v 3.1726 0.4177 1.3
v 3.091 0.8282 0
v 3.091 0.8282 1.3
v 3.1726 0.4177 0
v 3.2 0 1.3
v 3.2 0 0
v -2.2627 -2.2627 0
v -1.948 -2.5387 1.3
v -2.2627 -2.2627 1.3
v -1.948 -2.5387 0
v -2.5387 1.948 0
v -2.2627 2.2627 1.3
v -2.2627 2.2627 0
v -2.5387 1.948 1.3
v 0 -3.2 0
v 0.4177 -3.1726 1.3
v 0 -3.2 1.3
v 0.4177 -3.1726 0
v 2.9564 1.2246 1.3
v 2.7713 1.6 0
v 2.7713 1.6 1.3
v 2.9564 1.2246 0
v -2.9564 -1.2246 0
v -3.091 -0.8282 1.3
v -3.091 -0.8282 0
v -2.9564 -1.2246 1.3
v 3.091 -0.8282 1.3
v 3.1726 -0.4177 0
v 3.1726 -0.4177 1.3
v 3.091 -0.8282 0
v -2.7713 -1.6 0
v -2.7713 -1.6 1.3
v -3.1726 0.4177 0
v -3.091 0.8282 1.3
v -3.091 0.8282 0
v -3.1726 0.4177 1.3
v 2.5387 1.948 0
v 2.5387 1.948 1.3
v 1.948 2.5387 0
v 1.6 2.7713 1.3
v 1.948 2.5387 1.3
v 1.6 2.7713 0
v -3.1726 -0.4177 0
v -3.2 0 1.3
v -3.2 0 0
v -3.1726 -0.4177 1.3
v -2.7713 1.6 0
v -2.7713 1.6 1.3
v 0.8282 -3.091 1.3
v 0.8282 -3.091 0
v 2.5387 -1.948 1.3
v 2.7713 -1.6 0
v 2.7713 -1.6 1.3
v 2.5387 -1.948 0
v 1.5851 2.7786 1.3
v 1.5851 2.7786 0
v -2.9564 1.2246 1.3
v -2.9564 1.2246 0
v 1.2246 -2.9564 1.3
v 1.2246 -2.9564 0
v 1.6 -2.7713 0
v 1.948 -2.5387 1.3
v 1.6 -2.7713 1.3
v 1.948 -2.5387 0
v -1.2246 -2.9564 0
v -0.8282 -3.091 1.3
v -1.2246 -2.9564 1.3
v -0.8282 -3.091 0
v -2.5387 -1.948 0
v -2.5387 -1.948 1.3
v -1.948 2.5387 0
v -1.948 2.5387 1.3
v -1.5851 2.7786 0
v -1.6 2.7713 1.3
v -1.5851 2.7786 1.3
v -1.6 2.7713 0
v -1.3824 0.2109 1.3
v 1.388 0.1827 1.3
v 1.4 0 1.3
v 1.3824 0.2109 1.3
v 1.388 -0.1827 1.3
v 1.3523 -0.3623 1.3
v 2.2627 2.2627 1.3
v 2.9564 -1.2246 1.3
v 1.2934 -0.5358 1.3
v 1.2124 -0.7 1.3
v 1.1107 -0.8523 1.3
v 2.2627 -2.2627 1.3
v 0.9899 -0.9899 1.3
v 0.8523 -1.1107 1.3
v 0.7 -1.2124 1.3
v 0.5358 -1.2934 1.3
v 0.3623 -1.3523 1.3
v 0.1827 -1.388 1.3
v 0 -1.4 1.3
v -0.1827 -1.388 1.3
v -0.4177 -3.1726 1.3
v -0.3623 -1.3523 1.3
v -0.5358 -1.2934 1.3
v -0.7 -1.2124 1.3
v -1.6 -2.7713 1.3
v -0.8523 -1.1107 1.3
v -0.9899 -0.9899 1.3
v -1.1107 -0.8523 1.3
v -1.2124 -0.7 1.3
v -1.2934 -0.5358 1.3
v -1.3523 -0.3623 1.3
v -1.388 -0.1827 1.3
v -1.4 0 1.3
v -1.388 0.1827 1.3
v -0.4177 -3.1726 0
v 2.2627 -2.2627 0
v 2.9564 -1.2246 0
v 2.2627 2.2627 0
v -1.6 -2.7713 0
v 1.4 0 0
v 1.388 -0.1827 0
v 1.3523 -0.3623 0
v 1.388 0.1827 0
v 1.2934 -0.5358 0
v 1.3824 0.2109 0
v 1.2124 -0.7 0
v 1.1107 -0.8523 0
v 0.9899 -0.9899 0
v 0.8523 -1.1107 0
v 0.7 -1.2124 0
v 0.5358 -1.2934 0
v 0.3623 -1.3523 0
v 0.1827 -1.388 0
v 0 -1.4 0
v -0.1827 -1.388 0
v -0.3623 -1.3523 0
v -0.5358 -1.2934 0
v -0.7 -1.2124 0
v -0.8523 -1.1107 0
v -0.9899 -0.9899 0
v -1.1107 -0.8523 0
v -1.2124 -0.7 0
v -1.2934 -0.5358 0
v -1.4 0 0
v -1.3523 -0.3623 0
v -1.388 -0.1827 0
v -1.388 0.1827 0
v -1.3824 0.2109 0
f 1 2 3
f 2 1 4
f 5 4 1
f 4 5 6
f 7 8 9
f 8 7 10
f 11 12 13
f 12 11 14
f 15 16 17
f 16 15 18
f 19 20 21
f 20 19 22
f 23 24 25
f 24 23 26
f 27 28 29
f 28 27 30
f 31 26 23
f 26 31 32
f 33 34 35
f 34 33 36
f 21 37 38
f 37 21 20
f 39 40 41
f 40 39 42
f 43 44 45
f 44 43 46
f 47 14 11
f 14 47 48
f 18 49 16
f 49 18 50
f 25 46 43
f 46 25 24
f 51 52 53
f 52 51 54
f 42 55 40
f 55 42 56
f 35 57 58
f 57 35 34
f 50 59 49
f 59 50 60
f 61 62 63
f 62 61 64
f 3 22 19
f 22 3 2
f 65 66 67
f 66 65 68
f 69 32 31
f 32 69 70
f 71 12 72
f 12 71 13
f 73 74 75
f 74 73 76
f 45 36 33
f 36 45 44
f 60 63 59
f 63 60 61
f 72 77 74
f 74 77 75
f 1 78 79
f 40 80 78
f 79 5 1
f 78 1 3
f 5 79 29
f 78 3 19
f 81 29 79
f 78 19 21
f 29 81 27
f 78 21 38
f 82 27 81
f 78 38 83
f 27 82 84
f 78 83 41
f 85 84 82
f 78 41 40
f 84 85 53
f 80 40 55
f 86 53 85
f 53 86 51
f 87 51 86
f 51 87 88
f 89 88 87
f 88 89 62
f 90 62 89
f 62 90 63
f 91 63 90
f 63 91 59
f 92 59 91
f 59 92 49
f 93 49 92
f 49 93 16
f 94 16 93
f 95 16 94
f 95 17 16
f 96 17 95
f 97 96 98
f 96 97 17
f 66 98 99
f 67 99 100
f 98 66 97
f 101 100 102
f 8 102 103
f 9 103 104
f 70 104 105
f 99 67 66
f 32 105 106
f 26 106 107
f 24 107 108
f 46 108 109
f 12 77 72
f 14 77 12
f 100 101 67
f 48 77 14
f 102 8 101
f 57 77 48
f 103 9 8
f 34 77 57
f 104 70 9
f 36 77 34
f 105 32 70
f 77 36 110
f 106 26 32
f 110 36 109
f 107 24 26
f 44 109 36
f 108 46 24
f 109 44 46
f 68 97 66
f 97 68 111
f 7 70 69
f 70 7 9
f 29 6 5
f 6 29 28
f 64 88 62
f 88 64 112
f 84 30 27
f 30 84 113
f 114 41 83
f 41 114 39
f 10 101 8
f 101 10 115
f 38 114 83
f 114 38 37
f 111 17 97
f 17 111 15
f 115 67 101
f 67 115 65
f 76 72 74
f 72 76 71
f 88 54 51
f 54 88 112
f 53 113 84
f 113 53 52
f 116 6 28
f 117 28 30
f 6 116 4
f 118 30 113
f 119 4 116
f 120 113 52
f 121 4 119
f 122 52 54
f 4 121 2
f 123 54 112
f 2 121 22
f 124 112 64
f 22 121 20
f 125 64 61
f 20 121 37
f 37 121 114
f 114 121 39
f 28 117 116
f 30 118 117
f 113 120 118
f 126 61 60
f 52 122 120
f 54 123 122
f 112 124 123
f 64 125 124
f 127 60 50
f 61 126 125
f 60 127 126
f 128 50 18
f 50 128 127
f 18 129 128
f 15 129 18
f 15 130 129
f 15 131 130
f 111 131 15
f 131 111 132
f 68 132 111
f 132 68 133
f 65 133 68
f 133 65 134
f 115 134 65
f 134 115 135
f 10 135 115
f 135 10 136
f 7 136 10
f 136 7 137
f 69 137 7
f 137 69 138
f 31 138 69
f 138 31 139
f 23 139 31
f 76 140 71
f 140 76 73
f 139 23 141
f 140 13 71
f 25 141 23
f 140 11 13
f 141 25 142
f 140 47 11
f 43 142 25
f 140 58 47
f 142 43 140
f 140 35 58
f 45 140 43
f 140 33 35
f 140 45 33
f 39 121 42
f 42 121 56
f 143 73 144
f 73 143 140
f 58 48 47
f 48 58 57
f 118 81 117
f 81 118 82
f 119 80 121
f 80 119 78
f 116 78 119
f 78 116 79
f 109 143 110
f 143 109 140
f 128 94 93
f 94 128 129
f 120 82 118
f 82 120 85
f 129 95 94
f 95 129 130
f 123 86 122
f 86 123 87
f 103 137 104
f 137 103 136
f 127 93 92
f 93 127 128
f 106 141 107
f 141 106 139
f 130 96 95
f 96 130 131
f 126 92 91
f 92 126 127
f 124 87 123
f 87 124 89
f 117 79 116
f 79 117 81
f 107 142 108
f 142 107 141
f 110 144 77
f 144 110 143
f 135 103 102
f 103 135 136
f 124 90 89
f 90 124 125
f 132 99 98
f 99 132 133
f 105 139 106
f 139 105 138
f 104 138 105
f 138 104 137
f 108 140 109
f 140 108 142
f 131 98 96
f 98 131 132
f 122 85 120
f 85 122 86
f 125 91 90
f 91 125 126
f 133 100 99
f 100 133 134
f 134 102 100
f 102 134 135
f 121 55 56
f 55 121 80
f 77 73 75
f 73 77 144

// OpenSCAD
$fn=48;

module tight_c_clip(outer_d, inner_d, t, throat_w, entry_w) {
    outer_r=outer_d/2;
    inner_r=inner_d/2;
    difference() {
        difference() {
            cylinder(r=outer_r,h=t);
            translate([0,0,-0.1]) cylinder(r=inner_r,h=t+0.2);
        }
        linear_extrude(height=t+0.4)
            polygon(points=[
                [-throat_w/2,-0.2],
                [ throat_w/2,-0.2],
                [ entry_w/2,outer_r+0.4],
                [-entry_w/2,outer_r+0.4]
            ]);
    }
}

// V3: tightened for direct sideways snap onto the Ø3.10 groove.
tight_c_clip(outer_d=6.40,inner_d=2.80,t=1.30,throat_w=2.70,entry_w=3.30);
